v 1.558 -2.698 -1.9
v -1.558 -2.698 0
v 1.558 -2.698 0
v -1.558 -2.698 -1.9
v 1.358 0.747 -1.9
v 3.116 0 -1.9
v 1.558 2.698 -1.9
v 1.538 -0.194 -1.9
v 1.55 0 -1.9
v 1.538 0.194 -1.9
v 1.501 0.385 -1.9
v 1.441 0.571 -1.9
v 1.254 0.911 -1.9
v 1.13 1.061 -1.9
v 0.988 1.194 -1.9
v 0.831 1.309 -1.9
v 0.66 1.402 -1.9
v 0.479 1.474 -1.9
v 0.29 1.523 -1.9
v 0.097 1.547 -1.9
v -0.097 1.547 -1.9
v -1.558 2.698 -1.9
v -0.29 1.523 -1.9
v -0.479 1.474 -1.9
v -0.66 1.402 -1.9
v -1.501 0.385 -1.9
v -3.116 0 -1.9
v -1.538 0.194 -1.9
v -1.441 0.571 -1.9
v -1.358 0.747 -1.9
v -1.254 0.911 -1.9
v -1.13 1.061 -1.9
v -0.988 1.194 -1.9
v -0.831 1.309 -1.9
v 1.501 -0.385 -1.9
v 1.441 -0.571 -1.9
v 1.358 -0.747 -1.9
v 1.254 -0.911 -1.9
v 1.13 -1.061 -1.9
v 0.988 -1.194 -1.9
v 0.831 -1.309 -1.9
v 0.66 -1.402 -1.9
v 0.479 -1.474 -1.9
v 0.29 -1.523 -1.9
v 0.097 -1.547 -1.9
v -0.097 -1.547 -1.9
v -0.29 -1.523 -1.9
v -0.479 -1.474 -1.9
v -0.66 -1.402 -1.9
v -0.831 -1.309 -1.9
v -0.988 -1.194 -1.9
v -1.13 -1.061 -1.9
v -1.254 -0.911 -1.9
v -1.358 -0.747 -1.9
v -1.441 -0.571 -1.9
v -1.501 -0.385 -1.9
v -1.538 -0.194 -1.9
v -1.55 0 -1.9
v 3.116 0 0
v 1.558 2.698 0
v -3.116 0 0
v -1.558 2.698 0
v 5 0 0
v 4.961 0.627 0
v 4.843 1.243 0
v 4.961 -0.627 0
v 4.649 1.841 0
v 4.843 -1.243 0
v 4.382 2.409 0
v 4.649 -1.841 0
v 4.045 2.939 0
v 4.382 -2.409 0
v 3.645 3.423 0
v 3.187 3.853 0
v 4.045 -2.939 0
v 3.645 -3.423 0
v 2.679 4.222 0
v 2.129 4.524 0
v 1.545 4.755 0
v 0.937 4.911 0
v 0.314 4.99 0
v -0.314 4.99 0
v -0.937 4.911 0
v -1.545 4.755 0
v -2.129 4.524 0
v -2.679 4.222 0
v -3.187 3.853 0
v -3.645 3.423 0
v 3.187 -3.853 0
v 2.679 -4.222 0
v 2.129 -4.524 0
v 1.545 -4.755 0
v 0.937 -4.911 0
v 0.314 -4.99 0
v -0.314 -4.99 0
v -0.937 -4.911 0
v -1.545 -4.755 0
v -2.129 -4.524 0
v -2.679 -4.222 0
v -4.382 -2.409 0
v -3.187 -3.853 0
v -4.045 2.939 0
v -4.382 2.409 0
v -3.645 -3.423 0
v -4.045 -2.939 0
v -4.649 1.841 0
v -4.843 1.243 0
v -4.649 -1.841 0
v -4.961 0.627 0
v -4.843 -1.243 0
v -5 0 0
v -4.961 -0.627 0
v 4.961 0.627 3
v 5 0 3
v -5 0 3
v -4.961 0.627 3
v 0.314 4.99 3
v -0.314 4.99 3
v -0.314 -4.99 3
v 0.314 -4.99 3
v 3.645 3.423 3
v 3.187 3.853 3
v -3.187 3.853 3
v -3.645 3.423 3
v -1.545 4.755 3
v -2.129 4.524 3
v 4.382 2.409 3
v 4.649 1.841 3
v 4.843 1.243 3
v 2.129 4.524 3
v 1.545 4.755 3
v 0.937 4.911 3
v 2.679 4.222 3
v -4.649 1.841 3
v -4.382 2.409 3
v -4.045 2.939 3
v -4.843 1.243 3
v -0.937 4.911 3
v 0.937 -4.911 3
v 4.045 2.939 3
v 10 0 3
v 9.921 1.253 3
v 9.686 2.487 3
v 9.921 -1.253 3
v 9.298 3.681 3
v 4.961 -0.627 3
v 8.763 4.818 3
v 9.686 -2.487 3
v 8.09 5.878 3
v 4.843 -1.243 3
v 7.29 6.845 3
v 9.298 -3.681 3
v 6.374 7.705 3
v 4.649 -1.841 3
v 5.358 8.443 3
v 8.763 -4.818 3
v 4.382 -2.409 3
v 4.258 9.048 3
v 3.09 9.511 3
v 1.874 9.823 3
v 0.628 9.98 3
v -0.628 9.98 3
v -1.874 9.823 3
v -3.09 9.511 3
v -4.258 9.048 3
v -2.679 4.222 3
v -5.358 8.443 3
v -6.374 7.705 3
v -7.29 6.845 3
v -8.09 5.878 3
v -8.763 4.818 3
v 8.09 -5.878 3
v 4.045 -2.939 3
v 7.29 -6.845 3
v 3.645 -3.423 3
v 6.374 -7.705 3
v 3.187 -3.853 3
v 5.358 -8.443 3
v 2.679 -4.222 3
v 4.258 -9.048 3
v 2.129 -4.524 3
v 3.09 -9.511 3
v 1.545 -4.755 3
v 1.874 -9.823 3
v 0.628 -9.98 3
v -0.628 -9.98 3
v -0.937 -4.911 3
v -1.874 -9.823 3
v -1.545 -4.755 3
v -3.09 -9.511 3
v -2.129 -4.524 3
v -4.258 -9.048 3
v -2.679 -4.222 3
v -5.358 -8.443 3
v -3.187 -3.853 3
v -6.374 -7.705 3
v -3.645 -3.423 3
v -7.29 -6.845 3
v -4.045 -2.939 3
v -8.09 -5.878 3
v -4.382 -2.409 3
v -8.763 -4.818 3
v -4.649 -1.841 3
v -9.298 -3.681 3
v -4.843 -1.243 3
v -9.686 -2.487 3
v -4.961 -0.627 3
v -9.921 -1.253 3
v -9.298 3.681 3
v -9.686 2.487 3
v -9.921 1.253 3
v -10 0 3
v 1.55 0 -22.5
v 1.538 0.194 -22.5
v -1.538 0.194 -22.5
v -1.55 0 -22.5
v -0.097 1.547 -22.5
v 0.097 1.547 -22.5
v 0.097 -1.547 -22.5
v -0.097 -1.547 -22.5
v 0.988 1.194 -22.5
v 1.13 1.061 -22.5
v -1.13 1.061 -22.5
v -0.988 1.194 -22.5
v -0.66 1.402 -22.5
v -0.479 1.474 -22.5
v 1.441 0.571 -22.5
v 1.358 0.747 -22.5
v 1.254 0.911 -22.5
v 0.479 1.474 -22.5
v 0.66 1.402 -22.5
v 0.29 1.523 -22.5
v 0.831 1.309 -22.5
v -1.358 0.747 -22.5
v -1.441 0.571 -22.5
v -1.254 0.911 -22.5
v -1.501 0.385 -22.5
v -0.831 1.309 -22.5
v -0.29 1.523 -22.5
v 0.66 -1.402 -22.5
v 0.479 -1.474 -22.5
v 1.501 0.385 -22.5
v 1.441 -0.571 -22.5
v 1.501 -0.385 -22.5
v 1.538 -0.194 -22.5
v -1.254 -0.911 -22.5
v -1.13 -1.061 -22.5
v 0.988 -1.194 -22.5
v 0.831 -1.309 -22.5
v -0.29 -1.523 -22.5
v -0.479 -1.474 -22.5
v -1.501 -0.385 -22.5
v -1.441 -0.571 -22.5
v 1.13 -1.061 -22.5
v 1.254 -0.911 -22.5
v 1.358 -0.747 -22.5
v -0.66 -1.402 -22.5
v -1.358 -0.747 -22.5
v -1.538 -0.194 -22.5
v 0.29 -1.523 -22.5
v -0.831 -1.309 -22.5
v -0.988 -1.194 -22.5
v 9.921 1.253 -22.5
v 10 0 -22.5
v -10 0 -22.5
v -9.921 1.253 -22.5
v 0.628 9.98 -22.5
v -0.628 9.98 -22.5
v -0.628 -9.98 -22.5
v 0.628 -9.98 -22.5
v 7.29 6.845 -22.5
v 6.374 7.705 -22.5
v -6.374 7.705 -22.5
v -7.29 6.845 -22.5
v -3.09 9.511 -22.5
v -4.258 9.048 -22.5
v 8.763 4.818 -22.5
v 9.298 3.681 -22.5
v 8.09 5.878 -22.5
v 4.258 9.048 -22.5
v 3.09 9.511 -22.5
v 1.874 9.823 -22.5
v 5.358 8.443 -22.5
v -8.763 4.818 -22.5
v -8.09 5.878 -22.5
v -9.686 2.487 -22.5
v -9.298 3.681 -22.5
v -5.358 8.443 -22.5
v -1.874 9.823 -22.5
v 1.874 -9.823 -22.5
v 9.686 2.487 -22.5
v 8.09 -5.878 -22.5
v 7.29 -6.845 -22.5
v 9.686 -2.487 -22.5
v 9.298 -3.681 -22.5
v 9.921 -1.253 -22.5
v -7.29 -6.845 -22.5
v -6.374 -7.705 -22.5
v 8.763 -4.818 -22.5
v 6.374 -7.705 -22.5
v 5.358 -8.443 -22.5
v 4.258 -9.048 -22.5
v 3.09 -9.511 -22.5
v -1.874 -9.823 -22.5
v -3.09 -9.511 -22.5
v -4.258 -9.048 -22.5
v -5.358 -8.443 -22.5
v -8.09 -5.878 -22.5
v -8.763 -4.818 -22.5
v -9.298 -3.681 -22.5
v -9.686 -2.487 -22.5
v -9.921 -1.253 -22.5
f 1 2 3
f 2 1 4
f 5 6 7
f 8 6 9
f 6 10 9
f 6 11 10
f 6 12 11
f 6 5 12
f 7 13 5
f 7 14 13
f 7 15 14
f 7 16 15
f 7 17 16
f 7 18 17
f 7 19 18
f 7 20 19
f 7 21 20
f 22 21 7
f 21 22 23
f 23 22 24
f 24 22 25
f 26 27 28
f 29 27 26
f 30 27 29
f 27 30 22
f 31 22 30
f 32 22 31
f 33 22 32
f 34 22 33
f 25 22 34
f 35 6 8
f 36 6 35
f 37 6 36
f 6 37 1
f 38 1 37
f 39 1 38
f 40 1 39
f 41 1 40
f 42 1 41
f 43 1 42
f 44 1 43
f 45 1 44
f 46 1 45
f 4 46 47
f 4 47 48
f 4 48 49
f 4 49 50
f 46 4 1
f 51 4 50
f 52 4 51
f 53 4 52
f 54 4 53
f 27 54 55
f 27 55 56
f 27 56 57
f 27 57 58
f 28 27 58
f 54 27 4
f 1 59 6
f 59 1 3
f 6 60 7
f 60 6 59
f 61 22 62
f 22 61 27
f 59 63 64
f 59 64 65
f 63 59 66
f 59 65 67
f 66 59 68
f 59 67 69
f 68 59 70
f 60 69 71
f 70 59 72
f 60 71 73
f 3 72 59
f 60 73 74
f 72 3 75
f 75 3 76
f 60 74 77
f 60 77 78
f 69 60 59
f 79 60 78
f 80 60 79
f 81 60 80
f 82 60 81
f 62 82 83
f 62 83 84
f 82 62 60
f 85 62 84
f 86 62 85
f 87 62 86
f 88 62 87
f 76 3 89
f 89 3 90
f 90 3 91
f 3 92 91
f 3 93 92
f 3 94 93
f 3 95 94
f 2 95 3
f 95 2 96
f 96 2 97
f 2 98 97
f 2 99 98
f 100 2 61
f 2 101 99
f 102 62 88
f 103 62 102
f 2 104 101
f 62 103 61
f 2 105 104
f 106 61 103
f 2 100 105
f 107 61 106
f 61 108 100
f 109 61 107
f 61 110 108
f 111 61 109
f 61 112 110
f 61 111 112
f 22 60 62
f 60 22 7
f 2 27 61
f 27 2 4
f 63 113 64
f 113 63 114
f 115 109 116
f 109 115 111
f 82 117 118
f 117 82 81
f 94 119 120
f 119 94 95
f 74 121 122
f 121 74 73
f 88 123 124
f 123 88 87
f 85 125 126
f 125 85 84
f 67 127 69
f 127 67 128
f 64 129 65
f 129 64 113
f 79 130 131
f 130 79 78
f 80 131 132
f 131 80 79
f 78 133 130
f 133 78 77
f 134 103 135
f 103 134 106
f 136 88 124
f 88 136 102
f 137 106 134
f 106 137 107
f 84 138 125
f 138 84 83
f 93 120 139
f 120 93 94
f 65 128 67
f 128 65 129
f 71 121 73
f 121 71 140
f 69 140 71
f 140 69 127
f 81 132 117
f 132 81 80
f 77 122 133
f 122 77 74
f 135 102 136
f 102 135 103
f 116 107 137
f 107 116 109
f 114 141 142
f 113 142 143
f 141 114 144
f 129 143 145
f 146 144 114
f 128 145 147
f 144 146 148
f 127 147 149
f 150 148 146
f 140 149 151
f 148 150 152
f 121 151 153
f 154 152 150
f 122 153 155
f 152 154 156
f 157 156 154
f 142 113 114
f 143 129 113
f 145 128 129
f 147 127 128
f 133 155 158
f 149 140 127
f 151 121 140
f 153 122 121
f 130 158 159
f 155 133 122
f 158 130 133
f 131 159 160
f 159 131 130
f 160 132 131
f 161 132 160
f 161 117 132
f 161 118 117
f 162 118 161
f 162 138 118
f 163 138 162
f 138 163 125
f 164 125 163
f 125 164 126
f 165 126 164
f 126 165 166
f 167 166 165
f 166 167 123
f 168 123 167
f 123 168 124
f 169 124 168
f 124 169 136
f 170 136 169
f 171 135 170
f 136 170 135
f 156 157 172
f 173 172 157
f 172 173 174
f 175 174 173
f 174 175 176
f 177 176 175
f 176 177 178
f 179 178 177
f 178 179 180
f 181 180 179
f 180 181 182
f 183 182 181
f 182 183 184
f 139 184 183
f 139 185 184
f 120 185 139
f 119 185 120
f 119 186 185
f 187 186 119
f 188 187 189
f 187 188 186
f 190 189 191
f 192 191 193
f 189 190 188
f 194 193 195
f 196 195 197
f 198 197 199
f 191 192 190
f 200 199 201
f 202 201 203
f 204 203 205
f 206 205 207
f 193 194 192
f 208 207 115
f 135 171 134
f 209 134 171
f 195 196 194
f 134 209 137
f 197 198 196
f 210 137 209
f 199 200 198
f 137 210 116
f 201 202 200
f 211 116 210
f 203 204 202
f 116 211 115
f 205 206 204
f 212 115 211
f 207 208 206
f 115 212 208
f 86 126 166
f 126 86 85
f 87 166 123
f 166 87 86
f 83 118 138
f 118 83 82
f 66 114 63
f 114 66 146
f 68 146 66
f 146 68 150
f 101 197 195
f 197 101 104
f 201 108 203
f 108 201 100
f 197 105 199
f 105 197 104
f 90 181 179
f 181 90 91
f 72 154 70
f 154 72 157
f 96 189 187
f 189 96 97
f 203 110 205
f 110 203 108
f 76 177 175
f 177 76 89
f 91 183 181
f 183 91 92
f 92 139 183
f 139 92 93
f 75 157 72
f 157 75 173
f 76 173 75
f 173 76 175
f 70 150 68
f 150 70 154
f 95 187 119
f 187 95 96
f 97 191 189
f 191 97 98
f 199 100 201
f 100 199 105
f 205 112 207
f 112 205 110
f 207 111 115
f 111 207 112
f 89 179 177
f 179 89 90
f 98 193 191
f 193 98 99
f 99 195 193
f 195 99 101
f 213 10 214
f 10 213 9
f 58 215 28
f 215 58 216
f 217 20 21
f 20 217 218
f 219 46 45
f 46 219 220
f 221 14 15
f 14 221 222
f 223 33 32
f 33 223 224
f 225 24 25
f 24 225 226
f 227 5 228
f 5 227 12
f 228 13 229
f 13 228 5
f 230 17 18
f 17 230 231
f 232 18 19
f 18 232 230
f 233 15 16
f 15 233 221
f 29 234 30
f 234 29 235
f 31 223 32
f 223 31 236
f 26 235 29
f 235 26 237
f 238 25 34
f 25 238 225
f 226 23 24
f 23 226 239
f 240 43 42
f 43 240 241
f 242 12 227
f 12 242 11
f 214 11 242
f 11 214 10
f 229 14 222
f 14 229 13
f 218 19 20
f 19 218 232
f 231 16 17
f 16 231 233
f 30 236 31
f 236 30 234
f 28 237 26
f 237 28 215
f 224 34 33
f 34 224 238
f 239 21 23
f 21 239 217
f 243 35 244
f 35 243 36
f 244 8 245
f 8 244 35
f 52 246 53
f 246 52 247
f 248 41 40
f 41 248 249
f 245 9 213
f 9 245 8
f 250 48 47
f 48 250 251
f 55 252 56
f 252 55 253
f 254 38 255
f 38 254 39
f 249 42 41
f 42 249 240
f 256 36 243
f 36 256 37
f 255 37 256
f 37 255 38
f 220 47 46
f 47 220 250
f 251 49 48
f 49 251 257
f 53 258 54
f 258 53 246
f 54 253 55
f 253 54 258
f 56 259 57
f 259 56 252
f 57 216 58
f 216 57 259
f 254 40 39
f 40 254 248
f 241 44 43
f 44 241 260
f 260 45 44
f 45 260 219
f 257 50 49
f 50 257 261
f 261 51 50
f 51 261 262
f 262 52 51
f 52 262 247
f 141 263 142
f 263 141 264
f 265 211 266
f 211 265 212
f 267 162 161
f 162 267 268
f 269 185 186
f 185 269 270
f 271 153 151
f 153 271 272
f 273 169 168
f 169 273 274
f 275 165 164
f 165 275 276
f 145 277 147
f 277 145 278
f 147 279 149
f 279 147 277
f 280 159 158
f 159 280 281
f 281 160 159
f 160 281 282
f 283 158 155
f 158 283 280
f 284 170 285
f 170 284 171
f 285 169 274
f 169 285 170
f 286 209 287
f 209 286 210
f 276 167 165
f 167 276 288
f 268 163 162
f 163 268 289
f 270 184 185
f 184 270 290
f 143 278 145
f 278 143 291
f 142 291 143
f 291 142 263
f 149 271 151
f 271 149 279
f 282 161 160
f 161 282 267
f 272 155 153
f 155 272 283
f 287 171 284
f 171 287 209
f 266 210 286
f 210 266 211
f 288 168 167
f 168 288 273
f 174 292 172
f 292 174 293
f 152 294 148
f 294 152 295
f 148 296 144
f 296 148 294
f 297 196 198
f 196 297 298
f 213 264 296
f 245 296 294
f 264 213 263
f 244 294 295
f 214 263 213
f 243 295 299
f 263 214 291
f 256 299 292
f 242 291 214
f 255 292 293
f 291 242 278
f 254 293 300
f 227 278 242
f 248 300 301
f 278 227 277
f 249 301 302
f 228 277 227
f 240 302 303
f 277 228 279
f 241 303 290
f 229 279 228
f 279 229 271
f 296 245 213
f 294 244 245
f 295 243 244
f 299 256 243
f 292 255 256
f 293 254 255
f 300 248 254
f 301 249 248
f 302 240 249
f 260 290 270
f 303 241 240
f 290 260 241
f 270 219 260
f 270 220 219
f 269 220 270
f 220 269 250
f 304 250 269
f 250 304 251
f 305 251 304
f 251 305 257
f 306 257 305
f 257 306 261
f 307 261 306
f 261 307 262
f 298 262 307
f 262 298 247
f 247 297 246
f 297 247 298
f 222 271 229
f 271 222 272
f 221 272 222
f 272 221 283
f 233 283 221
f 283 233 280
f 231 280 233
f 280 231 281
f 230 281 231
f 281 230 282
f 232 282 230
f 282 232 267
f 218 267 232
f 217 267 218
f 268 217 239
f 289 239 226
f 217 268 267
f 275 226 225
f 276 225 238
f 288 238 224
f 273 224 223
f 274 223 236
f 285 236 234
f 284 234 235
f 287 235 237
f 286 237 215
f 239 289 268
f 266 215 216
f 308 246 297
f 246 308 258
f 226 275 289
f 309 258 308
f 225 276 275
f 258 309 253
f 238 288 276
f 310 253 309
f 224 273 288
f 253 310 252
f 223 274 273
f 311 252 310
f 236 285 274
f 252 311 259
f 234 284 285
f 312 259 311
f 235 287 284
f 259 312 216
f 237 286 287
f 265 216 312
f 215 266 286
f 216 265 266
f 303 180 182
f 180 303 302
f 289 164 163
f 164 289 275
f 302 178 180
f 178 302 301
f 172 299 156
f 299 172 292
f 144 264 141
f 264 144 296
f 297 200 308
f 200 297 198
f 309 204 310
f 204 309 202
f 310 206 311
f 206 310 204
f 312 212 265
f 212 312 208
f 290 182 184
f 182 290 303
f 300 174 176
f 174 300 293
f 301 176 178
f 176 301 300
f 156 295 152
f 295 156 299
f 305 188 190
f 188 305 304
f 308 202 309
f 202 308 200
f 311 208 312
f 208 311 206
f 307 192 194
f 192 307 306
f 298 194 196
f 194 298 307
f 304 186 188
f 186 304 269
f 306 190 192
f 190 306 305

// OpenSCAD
$fn = 50;

difference() {
	union() {
		translate(v = [0, 0, -22.5]) {
			cylinder(h = 25.5, r = 10.0);
		}
	}
	union() {
		translate(v = [0, 0, 0]) {
			rotate(a = [0, 0, 0]) {
				difference() {
					union() {
						translate(v = [0, 0, -1.9]) {
							linear_extrude(height = 1.9) {
								polygon(points = [[3.1158, 0.0], [1.5579000000000005, 2.698361953111554], [-1.5578999999999994, 2.6983619531115544], [-3.1158, 3.815754496783323e-16], [-1.5579000000000014, -2.6983619531115535], [1.557899999999998, -2.6983619531115552]]);
							}
						}
					}
					union();
				}
			}
		}
		#cylinder(h = 3, r = 5.0);
		#translate(v = [0, 0, -100.0]) {
			cylinder(h = 200, r = 1.55);
		}
	}
}
